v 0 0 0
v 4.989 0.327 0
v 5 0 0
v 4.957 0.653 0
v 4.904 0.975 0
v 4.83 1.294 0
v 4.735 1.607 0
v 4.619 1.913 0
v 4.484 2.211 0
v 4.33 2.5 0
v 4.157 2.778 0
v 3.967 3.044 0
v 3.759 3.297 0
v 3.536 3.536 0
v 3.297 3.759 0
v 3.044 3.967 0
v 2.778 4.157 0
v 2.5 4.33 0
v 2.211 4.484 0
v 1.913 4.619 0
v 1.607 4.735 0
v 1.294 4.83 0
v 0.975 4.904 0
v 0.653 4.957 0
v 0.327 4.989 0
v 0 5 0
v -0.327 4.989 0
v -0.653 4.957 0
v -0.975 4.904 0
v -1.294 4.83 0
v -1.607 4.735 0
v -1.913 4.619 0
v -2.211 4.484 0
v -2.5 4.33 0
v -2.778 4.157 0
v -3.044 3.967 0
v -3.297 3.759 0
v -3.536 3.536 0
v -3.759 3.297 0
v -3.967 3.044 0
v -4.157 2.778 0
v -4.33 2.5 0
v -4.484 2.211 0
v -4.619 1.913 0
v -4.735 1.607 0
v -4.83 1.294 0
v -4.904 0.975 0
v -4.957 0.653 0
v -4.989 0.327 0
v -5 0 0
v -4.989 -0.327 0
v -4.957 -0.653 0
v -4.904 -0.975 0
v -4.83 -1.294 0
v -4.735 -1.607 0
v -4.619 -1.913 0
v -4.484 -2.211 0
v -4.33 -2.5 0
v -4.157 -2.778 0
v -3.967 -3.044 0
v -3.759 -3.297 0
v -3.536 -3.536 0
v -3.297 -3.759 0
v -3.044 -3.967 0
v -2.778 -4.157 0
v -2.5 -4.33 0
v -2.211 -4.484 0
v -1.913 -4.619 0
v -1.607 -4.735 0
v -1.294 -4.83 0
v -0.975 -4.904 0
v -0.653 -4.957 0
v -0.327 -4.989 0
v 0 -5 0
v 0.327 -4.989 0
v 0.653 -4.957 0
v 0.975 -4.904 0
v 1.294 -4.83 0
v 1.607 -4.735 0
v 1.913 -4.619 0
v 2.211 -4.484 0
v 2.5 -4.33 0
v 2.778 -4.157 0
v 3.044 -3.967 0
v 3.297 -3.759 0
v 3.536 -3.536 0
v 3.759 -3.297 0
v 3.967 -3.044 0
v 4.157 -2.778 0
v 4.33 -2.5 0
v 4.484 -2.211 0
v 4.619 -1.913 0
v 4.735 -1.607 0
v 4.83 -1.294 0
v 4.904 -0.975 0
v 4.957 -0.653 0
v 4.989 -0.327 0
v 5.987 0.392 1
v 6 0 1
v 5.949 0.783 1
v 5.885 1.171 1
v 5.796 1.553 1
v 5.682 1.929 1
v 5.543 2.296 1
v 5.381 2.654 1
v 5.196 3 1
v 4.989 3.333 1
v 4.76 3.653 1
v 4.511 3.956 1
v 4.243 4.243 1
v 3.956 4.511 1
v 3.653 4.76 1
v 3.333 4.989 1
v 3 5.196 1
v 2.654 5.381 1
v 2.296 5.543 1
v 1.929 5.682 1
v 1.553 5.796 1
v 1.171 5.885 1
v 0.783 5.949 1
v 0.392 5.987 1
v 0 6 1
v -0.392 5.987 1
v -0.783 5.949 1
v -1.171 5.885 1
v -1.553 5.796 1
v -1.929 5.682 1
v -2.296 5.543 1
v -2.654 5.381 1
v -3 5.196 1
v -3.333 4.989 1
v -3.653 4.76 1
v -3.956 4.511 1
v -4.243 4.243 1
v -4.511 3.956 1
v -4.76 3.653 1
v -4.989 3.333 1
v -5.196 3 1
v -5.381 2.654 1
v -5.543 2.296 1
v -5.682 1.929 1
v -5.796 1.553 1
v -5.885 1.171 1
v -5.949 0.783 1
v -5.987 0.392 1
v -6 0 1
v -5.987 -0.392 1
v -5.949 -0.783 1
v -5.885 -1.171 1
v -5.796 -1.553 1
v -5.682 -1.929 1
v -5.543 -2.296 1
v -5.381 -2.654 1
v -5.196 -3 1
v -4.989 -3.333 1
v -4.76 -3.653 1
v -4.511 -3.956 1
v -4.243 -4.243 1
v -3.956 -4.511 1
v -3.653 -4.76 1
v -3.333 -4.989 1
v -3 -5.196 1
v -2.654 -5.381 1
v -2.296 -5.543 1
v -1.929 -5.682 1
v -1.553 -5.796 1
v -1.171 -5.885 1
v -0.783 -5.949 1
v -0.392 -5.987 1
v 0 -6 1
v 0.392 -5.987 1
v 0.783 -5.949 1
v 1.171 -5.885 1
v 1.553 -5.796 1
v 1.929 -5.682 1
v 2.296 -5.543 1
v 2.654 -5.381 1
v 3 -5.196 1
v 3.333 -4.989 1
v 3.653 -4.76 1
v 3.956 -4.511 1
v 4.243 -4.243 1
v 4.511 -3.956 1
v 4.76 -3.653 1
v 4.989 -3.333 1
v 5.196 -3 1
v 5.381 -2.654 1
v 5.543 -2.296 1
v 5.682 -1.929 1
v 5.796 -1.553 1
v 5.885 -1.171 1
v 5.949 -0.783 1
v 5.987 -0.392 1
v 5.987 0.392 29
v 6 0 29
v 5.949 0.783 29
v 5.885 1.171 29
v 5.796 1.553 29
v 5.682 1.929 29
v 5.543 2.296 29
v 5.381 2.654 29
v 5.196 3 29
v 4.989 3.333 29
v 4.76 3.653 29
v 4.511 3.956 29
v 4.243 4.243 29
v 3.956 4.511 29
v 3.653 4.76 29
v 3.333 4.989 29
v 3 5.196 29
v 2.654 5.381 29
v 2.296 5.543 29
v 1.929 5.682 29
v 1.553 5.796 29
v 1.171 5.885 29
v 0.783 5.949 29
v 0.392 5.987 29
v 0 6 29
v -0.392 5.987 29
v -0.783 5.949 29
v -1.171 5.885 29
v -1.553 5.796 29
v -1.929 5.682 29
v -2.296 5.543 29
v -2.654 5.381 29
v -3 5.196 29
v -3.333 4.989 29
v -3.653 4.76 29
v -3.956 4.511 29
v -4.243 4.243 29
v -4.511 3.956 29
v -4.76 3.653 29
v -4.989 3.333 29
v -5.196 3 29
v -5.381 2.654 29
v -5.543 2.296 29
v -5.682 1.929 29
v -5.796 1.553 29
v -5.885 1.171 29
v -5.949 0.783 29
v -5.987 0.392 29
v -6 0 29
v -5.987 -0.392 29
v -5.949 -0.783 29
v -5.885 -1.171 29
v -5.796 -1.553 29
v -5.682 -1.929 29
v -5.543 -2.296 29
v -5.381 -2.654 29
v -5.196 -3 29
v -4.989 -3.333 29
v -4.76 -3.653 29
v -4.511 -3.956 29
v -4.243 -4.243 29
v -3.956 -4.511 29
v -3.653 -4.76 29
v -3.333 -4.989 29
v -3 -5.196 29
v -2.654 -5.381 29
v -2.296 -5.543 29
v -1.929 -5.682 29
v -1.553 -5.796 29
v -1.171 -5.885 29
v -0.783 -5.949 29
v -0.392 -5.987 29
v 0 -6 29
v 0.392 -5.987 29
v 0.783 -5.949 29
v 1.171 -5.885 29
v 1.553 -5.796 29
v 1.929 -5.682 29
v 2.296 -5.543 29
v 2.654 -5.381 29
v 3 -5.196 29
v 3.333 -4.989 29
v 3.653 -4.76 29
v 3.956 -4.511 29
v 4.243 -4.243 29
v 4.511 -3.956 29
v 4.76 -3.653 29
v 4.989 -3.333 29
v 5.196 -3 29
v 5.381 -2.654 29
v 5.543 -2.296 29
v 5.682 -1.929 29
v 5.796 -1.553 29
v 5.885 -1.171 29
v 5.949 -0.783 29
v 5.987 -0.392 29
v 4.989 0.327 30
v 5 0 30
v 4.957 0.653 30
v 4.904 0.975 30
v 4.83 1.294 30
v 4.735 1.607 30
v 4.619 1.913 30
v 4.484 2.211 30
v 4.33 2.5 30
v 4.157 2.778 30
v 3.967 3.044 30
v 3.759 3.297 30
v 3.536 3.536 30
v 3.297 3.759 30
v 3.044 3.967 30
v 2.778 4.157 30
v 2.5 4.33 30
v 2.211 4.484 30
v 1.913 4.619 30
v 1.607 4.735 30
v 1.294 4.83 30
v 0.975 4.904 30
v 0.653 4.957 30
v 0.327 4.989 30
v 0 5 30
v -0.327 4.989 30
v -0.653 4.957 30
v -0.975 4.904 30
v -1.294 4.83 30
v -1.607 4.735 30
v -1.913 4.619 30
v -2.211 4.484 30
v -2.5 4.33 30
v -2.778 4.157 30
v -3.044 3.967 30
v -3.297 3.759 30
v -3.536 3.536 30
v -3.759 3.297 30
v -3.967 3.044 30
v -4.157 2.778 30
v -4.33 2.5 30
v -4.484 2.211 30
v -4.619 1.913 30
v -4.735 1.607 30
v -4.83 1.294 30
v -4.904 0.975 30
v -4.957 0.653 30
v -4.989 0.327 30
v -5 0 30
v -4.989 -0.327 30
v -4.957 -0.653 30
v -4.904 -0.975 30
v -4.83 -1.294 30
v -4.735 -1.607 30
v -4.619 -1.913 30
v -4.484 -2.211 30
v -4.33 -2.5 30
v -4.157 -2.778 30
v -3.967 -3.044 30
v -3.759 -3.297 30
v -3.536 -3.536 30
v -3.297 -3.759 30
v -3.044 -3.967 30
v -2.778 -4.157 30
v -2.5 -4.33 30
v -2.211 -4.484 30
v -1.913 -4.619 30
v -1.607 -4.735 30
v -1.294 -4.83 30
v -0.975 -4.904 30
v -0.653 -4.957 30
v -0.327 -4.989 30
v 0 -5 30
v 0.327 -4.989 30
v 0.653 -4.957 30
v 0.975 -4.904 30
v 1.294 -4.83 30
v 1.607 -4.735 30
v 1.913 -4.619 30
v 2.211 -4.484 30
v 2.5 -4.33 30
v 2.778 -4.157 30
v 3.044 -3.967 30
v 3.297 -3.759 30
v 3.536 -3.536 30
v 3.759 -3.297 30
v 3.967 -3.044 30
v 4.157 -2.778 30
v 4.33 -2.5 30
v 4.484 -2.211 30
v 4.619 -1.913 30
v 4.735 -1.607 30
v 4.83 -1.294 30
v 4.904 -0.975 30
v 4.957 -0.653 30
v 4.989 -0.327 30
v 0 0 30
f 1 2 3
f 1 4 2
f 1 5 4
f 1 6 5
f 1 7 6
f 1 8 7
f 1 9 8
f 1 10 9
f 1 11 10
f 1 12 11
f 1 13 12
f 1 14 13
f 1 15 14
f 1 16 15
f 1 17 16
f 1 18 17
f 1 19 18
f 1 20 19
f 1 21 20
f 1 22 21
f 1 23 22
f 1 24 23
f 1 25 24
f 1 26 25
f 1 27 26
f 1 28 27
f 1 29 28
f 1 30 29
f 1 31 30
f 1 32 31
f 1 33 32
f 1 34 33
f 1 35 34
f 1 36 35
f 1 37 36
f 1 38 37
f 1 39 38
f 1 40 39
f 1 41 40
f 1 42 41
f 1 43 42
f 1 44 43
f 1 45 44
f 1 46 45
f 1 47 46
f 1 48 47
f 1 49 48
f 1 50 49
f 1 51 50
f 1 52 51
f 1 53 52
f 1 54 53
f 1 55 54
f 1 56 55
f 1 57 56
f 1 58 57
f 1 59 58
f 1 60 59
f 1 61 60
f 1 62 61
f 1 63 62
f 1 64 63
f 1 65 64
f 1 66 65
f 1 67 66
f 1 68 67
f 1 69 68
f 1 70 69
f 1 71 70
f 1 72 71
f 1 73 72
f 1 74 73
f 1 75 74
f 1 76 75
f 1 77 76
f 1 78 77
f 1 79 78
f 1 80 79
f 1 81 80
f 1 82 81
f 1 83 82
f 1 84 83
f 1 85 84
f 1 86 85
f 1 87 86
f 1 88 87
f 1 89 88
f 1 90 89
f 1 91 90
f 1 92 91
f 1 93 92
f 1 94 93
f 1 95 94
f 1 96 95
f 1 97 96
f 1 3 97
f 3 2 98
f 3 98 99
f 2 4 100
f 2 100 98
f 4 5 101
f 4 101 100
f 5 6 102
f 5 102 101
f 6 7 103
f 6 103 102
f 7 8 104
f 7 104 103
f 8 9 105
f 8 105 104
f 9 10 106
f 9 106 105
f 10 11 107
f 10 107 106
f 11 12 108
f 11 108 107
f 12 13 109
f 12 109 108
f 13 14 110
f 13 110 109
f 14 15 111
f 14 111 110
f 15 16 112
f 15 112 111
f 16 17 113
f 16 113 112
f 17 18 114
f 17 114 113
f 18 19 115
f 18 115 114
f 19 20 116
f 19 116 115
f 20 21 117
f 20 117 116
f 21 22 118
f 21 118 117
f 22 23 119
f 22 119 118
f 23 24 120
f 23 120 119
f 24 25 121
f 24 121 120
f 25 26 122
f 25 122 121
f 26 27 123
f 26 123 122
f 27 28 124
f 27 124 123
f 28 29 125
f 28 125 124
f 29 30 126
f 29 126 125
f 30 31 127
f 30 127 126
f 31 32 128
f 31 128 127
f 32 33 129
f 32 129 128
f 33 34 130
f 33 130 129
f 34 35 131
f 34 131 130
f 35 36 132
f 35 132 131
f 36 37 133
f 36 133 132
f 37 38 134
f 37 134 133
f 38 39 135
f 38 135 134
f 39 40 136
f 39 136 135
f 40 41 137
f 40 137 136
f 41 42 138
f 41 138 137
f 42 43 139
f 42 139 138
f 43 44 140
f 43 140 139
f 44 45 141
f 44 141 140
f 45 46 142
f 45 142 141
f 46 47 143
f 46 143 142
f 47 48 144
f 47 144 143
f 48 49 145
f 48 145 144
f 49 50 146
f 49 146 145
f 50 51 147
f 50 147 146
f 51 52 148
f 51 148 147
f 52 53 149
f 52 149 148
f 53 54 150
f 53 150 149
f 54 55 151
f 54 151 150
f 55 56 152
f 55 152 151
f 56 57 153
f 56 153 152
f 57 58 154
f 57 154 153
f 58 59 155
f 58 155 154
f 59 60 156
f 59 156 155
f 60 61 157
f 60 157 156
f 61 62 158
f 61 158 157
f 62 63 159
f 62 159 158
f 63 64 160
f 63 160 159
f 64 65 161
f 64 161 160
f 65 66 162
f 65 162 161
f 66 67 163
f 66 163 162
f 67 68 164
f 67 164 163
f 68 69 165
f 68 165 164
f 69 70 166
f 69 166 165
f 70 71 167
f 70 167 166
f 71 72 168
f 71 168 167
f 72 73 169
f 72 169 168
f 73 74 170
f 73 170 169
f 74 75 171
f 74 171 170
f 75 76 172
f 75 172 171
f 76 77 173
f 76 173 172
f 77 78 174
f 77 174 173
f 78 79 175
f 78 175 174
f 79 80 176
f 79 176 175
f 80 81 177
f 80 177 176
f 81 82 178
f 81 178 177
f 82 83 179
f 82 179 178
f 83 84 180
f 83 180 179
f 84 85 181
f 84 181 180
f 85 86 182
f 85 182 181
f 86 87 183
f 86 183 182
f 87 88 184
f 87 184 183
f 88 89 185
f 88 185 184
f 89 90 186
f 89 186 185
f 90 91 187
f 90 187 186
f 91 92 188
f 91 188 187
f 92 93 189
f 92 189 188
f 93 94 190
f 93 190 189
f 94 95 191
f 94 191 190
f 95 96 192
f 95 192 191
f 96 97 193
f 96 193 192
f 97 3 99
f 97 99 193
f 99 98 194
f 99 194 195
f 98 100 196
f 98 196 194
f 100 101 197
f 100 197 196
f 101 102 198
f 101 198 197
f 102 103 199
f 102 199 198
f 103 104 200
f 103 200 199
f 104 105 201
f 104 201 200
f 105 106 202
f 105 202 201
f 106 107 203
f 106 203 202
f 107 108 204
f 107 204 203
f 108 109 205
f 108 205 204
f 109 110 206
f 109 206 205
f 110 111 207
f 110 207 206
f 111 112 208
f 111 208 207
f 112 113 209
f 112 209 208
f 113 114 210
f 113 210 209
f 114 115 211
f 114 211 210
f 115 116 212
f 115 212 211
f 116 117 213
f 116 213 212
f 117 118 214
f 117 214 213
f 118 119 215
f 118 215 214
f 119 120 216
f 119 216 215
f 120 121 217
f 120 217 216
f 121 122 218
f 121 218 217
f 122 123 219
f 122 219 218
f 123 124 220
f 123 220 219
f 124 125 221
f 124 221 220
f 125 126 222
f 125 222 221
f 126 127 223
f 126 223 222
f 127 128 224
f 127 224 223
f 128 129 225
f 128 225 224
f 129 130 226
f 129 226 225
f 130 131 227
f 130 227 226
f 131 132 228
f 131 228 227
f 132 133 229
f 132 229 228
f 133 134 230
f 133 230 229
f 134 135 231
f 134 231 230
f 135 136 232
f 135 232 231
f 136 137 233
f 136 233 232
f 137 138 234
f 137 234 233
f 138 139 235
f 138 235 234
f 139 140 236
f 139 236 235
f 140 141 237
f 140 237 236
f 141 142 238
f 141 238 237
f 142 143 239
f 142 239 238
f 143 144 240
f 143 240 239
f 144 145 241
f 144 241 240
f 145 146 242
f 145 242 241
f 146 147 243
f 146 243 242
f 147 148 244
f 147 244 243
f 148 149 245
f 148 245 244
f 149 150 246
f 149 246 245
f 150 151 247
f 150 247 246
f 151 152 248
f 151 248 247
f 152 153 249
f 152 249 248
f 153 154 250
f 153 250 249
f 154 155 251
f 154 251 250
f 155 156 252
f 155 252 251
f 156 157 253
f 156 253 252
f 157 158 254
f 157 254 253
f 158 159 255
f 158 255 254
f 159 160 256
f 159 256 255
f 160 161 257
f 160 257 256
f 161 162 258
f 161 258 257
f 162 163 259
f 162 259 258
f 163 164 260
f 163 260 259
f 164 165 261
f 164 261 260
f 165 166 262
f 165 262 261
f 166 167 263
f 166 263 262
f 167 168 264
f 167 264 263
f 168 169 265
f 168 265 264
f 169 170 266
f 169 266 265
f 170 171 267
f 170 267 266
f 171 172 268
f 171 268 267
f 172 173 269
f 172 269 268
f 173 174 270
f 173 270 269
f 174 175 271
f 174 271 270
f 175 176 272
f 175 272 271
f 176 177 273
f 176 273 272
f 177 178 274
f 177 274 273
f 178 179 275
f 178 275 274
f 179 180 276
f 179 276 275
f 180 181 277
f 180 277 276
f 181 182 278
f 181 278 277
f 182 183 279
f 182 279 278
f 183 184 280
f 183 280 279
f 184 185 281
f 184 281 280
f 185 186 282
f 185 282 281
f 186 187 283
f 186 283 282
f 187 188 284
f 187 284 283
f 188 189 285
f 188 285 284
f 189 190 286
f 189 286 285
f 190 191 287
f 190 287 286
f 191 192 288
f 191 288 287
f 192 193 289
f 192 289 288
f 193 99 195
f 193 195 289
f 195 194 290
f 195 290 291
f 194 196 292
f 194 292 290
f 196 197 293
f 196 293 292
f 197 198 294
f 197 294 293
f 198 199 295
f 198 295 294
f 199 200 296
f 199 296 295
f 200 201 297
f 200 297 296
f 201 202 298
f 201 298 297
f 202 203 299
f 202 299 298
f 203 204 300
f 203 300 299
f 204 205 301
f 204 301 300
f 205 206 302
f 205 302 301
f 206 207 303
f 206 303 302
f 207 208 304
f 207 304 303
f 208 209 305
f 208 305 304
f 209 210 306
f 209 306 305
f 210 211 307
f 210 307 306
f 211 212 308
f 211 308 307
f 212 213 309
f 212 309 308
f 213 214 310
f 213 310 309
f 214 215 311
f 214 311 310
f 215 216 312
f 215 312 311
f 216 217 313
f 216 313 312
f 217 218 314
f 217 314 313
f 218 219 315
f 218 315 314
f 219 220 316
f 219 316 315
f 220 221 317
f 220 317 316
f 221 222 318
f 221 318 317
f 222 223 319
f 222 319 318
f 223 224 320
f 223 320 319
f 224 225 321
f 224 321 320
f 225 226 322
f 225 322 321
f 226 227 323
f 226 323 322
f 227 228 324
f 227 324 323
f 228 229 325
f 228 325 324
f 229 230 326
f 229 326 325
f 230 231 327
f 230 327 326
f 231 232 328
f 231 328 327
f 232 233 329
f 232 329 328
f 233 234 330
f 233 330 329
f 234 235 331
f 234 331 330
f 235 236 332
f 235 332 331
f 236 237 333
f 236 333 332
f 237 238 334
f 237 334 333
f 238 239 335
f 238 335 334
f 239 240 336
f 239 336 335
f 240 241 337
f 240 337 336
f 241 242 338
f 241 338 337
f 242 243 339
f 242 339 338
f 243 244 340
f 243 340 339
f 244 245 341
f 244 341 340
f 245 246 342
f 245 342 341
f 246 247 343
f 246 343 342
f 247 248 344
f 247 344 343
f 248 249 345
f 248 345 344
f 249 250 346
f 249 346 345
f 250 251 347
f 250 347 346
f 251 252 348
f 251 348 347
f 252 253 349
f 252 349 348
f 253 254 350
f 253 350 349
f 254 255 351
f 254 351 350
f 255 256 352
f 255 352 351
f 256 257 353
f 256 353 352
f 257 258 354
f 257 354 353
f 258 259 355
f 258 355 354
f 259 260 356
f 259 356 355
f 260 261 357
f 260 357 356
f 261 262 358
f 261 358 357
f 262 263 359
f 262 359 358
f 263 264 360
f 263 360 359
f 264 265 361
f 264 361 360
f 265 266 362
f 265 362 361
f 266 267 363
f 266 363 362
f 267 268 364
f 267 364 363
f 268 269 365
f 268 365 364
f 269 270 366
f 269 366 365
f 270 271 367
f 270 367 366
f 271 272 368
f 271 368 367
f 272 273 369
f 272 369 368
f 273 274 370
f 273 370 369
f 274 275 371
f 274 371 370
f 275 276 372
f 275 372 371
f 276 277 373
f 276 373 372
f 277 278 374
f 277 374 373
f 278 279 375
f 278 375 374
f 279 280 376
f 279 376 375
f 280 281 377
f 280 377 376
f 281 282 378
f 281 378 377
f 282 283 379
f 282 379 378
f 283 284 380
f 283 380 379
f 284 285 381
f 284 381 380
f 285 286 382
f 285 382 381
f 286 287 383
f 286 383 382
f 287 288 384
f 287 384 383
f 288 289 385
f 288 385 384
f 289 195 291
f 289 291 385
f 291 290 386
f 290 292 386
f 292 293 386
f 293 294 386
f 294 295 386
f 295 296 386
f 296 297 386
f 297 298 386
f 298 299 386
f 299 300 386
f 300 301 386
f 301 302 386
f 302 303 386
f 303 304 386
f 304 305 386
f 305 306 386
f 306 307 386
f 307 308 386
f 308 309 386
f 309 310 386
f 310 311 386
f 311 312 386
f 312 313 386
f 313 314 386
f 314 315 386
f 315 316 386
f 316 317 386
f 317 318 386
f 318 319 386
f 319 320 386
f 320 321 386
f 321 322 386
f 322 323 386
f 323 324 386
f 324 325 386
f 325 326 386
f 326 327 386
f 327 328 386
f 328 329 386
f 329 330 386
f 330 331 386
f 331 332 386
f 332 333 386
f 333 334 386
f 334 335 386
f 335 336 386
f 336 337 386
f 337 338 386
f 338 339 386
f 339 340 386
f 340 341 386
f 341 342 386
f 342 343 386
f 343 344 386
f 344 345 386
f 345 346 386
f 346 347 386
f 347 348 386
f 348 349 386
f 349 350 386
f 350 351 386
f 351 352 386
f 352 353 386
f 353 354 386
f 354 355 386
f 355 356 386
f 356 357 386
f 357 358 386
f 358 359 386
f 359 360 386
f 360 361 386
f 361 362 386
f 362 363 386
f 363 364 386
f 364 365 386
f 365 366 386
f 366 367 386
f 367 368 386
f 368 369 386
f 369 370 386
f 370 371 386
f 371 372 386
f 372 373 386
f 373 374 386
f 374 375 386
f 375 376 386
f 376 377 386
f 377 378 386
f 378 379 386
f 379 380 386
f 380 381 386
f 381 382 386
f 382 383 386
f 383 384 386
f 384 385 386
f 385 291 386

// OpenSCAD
// Original MechIntel educational model. CC0-1.0. Units: mm.
// Not a standardized or load-rated component.
$fn=96;
// Section points: [radius, height], mm. Edit to change the profile.
section=[[0, 0], [5, 0], [6, 1], [6, 29], [5, 30], [0, 30]];
rotate_extrude($fn=96) polygon(points=section);
